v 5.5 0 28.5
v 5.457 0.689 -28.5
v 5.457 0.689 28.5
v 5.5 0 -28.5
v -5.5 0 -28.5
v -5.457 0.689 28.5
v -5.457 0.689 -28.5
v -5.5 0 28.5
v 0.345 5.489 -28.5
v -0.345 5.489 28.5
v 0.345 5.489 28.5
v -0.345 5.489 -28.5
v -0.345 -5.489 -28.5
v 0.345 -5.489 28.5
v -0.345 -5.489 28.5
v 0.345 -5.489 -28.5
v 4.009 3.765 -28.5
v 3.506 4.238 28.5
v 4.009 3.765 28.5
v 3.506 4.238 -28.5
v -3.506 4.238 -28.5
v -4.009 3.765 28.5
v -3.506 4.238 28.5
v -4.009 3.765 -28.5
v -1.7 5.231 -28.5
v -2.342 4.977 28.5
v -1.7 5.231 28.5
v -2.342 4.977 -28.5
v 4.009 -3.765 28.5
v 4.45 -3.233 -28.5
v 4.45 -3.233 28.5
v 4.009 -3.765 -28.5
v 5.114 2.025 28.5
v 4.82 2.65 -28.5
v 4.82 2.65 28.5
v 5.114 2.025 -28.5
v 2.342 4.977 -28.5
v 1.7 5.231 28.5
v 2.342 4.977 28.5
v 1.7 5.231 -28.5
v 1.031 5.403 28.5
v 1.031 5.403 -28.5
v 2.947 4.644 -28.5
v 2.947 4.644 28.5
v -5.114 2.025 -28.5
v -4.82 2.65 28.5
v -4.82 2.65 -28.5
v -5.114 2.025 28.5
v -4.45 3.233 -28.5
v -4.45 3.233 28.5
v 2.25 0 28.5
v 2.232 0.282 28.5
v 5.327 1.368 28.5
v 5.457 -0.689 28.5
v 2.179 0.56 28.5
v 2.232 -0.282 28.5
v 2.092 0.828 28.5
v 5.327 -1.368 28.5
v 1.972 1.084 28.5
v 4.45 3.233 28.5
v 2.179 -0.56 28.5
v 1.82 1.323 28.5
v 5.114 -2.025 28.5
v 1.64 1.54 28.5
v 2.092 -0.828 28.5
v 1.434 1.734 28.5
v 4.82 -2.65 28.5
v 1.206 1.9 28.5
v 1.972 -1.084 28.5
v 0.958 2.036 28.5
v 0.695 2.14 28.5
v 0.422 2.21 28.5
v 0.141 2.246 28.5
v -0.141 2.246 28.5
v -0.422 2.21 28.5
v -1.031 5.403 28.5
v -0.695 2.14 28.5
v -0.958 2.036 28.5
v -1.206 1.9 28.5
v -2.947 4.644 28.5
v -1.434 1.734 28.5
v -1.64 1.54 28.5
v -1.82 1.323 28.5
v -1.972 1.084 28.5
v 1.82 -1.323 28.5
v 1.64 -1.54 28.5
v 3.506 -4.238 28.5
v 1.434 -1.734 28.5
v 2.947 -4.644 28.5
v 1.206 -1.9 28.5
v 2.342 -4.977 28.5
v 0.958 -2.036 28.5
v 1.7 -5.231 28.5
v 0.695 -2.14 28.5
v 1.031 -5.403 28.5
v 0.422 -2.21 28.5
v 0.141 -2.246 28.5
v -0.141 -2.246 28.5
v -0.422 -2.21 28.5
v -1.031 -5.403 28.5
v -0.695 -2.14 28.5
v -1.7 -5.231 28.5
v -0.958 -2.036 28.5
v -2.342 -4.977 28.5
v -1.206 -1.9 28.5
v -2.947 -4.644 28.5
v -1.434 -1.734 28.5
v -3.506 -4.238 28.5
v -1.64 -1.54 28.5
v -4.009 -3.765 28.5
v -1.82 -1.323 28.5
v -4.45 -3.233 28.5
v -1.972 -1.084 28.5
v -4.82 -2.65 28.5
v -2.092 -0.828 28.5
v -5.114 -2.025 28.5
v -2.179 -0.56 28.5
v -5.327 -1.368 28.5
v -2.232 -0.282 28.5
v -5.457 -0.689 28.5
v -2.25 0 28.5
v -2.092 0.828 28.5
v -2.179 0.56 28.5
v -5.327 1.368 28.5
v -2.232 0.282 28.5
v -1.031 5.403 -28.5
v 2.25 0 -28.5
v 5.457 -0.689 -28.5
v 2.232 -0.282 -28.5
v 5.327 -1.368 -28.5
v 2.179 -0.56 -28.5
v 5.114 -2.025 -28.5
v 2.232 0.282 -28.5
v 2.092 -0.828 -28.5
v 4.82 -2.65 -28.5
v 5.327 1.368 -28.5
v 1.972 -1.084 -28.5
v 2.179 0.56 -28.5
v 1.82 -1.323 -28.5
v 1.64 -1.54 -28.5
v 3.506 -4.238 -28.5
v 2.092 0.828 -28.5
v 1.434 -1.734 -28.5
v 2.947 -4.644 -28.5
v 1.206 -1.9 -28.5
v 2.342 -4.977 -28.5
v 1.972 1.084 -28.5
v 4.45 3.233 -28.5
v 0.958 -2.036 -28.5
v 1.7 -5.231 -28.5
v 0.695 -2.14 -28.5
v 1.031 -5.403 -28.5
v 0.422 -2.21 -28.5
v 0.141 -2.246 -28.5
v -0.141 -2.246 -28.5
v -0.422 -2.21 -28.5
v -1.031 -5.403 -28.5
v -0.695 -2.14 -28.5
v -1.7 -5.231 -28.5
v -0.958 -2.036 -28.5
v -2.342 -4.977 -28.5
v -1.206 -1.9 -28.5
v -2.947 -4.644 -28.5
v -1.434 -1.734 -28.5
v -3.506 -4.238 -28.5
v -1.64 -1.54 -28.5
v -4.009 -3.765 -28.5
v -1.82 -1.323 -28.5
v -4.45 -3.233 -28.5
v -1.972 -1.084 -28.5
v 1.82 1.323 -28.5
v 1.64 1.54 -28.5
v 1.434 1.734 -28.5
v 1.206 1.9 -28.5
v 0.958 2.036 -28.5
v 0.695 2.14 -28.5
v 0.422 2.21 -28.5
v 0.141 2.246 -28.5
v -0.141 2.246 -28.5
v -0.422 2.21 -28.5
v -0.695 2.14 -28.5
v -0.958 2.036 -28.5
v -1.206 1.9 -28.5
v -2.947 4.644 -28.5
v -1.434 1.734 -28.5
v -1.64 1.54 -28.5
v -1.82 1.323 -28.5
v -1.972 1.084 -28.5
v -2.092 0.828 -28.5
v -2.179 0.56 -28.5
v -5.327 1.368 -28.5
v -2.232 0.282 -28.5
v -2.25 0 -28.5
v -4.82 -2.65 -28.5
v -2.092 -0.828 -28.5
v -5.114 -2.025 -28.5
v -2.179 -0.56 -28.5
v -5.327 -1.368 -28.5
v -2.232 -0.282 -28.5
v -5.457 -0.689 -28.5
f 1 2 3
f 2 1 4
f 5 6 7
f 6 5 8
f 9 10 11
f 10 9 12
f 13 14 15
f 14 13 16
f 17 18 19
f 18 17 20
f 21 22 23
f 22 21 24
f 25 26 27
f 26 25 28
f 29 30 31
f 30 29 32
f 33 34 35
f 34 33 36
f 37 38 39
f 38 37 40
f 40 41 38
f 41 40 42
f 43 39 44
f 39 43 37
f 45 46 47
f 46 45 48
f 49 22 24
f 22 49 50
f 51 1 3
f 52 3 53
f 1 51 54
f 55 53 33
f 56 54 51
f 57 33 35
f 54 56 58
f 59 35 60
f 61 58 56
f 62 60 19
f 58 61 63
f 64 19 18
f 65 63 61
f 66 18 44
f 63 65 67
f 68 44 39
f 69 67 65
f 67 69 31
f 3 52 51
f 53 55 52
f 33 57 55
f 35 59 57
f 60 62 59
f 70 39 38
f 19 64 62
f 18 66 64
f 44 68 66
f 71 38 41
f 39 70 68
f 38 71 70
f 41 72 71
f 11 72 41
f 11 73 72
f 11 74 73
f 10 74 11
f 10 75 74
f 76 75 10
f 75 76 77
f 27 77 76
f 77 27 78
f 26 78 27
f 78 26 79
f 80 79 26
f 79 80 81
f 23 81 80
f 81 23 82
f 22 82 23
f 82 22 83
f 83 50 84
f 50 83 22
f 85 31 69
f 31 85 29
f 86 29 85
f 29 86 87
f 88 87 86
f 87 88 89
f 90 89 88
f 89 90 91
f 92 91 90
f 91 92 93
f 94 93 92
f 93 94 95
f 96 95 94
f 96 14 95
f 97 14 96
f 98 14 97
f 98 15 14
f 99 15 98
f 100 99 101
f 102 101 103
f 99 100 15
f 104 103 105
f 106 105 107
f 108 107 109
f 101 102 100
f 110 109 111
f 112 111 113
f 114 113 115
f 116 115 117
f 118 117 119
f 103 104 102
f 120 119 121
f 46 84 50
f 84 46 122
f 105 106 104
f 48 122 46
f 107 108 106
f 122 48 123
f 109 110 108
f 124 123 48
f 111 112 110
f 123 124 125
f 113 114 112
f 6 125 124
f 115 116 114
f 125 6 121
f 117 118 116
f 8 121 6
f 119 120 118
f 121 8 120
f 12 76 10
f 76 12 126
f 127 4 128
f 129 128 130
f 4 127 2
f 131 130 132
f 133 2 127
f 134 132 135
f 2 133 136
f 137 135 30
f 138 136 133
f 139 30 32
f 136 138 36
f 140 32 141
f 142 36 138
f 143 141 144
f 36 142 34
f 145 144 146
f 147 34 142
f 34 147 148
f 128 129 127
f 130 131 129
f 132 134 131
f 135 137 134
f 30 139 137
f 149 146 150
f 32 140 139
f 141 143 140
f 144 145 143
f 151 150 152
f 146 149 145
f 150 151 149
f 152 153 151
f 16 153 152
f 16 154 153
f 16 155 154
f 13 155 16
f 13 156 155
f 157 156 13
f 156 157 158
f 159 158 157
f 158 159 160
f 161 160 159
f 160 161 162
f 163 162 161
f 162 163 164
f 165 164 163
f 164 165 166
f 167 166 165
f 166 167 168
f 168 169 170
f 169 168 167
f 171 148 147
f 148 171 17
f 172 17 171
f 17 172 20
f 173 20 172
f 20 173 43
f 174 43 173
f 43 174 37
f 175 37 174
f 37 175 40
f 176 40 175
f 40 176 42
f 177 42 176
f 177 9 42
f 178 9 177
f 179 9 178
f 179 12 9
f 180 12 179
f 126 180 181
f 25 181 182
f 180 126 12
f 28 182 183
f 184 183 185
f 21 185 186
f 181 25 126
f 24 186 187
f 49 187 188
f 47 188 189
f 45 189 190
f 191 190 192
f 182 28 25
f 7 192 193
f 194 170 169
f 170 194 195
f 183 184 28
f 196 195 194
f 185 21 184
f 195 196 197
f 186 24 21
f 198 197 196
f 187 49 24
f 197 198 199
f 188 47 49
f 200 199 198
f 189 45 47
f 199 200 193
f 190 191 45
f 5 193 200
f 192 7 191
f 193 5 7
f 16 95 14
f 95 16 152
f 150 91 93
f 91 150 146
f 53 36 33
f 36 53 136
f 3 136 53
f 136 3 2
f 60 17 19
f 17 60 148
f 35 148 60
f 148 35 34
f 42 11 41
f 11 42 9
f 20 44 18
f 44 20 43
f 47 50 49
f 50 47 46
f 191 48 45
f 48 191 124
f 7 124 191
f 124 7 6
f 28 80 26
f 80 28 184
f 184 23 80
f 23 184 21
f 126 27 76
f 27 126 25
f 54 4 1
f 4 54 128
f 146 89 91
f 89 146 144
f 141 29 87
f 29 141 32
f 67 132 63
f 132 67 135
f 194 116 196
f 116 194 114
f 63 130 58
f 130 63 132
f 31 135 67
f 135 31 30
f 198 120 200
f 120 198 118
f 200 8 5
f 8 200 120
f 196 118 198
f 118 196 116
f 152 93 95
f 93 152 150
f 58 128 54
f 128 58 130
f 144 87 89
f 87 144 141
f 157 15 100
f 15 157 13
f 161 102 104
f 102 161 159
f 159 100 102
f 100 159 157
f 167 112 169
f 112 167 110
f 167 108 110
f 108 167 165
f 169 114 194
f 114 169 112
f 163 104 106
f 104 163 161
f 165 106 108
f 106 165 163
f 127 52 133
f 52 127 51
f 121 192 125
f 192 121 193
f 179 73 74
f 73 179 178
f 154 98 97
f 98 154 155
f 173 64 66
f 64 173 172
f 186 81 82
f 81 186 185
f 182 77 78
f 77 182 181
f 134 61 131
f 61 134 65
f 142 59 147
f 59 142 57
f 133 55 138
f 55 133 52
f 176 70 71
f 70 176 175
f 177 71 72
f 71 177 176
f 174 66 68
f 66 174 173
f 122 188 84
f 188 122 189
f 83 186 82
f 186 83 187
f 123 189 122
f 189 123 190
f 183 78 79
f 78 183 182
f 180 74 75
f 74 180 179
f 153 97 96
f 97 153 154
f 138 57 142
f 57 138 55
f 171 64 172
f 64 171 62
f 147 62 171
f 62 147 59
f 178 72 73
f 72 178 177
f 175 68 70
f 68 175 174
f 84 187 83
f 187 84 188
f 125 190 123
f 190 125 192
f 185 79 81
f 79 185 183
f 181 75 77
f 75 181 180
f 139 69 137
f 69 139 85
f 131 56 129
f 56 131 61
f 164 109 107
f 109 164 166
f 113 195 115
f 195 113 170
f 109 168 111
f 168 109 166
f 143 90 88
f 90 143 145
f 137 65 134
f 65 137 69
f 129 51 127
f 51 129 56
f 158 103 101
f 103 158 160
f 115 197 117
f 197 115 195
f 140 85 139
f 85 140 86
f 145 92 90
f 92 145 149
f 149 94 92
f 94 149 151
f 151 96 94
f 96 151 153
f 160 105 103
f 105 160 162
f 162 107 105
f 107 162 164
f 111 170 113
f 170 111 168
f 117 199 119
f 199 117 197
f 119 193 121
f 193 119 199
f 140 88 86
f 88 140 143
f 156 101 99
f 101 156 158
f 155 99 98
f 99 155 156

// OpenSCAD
$fn = 50;


difference() {
	union() {
		translate(v = [0, 0, -28.5000000000]) {
			cylinder(h = 57, r = 5.5000000000);
		}
	}
	union() {
		translate(v = [0, 0, -100.0000000000]) {
			cylinder(h = 200, r = 2.2500000000);
		}
	}
}
